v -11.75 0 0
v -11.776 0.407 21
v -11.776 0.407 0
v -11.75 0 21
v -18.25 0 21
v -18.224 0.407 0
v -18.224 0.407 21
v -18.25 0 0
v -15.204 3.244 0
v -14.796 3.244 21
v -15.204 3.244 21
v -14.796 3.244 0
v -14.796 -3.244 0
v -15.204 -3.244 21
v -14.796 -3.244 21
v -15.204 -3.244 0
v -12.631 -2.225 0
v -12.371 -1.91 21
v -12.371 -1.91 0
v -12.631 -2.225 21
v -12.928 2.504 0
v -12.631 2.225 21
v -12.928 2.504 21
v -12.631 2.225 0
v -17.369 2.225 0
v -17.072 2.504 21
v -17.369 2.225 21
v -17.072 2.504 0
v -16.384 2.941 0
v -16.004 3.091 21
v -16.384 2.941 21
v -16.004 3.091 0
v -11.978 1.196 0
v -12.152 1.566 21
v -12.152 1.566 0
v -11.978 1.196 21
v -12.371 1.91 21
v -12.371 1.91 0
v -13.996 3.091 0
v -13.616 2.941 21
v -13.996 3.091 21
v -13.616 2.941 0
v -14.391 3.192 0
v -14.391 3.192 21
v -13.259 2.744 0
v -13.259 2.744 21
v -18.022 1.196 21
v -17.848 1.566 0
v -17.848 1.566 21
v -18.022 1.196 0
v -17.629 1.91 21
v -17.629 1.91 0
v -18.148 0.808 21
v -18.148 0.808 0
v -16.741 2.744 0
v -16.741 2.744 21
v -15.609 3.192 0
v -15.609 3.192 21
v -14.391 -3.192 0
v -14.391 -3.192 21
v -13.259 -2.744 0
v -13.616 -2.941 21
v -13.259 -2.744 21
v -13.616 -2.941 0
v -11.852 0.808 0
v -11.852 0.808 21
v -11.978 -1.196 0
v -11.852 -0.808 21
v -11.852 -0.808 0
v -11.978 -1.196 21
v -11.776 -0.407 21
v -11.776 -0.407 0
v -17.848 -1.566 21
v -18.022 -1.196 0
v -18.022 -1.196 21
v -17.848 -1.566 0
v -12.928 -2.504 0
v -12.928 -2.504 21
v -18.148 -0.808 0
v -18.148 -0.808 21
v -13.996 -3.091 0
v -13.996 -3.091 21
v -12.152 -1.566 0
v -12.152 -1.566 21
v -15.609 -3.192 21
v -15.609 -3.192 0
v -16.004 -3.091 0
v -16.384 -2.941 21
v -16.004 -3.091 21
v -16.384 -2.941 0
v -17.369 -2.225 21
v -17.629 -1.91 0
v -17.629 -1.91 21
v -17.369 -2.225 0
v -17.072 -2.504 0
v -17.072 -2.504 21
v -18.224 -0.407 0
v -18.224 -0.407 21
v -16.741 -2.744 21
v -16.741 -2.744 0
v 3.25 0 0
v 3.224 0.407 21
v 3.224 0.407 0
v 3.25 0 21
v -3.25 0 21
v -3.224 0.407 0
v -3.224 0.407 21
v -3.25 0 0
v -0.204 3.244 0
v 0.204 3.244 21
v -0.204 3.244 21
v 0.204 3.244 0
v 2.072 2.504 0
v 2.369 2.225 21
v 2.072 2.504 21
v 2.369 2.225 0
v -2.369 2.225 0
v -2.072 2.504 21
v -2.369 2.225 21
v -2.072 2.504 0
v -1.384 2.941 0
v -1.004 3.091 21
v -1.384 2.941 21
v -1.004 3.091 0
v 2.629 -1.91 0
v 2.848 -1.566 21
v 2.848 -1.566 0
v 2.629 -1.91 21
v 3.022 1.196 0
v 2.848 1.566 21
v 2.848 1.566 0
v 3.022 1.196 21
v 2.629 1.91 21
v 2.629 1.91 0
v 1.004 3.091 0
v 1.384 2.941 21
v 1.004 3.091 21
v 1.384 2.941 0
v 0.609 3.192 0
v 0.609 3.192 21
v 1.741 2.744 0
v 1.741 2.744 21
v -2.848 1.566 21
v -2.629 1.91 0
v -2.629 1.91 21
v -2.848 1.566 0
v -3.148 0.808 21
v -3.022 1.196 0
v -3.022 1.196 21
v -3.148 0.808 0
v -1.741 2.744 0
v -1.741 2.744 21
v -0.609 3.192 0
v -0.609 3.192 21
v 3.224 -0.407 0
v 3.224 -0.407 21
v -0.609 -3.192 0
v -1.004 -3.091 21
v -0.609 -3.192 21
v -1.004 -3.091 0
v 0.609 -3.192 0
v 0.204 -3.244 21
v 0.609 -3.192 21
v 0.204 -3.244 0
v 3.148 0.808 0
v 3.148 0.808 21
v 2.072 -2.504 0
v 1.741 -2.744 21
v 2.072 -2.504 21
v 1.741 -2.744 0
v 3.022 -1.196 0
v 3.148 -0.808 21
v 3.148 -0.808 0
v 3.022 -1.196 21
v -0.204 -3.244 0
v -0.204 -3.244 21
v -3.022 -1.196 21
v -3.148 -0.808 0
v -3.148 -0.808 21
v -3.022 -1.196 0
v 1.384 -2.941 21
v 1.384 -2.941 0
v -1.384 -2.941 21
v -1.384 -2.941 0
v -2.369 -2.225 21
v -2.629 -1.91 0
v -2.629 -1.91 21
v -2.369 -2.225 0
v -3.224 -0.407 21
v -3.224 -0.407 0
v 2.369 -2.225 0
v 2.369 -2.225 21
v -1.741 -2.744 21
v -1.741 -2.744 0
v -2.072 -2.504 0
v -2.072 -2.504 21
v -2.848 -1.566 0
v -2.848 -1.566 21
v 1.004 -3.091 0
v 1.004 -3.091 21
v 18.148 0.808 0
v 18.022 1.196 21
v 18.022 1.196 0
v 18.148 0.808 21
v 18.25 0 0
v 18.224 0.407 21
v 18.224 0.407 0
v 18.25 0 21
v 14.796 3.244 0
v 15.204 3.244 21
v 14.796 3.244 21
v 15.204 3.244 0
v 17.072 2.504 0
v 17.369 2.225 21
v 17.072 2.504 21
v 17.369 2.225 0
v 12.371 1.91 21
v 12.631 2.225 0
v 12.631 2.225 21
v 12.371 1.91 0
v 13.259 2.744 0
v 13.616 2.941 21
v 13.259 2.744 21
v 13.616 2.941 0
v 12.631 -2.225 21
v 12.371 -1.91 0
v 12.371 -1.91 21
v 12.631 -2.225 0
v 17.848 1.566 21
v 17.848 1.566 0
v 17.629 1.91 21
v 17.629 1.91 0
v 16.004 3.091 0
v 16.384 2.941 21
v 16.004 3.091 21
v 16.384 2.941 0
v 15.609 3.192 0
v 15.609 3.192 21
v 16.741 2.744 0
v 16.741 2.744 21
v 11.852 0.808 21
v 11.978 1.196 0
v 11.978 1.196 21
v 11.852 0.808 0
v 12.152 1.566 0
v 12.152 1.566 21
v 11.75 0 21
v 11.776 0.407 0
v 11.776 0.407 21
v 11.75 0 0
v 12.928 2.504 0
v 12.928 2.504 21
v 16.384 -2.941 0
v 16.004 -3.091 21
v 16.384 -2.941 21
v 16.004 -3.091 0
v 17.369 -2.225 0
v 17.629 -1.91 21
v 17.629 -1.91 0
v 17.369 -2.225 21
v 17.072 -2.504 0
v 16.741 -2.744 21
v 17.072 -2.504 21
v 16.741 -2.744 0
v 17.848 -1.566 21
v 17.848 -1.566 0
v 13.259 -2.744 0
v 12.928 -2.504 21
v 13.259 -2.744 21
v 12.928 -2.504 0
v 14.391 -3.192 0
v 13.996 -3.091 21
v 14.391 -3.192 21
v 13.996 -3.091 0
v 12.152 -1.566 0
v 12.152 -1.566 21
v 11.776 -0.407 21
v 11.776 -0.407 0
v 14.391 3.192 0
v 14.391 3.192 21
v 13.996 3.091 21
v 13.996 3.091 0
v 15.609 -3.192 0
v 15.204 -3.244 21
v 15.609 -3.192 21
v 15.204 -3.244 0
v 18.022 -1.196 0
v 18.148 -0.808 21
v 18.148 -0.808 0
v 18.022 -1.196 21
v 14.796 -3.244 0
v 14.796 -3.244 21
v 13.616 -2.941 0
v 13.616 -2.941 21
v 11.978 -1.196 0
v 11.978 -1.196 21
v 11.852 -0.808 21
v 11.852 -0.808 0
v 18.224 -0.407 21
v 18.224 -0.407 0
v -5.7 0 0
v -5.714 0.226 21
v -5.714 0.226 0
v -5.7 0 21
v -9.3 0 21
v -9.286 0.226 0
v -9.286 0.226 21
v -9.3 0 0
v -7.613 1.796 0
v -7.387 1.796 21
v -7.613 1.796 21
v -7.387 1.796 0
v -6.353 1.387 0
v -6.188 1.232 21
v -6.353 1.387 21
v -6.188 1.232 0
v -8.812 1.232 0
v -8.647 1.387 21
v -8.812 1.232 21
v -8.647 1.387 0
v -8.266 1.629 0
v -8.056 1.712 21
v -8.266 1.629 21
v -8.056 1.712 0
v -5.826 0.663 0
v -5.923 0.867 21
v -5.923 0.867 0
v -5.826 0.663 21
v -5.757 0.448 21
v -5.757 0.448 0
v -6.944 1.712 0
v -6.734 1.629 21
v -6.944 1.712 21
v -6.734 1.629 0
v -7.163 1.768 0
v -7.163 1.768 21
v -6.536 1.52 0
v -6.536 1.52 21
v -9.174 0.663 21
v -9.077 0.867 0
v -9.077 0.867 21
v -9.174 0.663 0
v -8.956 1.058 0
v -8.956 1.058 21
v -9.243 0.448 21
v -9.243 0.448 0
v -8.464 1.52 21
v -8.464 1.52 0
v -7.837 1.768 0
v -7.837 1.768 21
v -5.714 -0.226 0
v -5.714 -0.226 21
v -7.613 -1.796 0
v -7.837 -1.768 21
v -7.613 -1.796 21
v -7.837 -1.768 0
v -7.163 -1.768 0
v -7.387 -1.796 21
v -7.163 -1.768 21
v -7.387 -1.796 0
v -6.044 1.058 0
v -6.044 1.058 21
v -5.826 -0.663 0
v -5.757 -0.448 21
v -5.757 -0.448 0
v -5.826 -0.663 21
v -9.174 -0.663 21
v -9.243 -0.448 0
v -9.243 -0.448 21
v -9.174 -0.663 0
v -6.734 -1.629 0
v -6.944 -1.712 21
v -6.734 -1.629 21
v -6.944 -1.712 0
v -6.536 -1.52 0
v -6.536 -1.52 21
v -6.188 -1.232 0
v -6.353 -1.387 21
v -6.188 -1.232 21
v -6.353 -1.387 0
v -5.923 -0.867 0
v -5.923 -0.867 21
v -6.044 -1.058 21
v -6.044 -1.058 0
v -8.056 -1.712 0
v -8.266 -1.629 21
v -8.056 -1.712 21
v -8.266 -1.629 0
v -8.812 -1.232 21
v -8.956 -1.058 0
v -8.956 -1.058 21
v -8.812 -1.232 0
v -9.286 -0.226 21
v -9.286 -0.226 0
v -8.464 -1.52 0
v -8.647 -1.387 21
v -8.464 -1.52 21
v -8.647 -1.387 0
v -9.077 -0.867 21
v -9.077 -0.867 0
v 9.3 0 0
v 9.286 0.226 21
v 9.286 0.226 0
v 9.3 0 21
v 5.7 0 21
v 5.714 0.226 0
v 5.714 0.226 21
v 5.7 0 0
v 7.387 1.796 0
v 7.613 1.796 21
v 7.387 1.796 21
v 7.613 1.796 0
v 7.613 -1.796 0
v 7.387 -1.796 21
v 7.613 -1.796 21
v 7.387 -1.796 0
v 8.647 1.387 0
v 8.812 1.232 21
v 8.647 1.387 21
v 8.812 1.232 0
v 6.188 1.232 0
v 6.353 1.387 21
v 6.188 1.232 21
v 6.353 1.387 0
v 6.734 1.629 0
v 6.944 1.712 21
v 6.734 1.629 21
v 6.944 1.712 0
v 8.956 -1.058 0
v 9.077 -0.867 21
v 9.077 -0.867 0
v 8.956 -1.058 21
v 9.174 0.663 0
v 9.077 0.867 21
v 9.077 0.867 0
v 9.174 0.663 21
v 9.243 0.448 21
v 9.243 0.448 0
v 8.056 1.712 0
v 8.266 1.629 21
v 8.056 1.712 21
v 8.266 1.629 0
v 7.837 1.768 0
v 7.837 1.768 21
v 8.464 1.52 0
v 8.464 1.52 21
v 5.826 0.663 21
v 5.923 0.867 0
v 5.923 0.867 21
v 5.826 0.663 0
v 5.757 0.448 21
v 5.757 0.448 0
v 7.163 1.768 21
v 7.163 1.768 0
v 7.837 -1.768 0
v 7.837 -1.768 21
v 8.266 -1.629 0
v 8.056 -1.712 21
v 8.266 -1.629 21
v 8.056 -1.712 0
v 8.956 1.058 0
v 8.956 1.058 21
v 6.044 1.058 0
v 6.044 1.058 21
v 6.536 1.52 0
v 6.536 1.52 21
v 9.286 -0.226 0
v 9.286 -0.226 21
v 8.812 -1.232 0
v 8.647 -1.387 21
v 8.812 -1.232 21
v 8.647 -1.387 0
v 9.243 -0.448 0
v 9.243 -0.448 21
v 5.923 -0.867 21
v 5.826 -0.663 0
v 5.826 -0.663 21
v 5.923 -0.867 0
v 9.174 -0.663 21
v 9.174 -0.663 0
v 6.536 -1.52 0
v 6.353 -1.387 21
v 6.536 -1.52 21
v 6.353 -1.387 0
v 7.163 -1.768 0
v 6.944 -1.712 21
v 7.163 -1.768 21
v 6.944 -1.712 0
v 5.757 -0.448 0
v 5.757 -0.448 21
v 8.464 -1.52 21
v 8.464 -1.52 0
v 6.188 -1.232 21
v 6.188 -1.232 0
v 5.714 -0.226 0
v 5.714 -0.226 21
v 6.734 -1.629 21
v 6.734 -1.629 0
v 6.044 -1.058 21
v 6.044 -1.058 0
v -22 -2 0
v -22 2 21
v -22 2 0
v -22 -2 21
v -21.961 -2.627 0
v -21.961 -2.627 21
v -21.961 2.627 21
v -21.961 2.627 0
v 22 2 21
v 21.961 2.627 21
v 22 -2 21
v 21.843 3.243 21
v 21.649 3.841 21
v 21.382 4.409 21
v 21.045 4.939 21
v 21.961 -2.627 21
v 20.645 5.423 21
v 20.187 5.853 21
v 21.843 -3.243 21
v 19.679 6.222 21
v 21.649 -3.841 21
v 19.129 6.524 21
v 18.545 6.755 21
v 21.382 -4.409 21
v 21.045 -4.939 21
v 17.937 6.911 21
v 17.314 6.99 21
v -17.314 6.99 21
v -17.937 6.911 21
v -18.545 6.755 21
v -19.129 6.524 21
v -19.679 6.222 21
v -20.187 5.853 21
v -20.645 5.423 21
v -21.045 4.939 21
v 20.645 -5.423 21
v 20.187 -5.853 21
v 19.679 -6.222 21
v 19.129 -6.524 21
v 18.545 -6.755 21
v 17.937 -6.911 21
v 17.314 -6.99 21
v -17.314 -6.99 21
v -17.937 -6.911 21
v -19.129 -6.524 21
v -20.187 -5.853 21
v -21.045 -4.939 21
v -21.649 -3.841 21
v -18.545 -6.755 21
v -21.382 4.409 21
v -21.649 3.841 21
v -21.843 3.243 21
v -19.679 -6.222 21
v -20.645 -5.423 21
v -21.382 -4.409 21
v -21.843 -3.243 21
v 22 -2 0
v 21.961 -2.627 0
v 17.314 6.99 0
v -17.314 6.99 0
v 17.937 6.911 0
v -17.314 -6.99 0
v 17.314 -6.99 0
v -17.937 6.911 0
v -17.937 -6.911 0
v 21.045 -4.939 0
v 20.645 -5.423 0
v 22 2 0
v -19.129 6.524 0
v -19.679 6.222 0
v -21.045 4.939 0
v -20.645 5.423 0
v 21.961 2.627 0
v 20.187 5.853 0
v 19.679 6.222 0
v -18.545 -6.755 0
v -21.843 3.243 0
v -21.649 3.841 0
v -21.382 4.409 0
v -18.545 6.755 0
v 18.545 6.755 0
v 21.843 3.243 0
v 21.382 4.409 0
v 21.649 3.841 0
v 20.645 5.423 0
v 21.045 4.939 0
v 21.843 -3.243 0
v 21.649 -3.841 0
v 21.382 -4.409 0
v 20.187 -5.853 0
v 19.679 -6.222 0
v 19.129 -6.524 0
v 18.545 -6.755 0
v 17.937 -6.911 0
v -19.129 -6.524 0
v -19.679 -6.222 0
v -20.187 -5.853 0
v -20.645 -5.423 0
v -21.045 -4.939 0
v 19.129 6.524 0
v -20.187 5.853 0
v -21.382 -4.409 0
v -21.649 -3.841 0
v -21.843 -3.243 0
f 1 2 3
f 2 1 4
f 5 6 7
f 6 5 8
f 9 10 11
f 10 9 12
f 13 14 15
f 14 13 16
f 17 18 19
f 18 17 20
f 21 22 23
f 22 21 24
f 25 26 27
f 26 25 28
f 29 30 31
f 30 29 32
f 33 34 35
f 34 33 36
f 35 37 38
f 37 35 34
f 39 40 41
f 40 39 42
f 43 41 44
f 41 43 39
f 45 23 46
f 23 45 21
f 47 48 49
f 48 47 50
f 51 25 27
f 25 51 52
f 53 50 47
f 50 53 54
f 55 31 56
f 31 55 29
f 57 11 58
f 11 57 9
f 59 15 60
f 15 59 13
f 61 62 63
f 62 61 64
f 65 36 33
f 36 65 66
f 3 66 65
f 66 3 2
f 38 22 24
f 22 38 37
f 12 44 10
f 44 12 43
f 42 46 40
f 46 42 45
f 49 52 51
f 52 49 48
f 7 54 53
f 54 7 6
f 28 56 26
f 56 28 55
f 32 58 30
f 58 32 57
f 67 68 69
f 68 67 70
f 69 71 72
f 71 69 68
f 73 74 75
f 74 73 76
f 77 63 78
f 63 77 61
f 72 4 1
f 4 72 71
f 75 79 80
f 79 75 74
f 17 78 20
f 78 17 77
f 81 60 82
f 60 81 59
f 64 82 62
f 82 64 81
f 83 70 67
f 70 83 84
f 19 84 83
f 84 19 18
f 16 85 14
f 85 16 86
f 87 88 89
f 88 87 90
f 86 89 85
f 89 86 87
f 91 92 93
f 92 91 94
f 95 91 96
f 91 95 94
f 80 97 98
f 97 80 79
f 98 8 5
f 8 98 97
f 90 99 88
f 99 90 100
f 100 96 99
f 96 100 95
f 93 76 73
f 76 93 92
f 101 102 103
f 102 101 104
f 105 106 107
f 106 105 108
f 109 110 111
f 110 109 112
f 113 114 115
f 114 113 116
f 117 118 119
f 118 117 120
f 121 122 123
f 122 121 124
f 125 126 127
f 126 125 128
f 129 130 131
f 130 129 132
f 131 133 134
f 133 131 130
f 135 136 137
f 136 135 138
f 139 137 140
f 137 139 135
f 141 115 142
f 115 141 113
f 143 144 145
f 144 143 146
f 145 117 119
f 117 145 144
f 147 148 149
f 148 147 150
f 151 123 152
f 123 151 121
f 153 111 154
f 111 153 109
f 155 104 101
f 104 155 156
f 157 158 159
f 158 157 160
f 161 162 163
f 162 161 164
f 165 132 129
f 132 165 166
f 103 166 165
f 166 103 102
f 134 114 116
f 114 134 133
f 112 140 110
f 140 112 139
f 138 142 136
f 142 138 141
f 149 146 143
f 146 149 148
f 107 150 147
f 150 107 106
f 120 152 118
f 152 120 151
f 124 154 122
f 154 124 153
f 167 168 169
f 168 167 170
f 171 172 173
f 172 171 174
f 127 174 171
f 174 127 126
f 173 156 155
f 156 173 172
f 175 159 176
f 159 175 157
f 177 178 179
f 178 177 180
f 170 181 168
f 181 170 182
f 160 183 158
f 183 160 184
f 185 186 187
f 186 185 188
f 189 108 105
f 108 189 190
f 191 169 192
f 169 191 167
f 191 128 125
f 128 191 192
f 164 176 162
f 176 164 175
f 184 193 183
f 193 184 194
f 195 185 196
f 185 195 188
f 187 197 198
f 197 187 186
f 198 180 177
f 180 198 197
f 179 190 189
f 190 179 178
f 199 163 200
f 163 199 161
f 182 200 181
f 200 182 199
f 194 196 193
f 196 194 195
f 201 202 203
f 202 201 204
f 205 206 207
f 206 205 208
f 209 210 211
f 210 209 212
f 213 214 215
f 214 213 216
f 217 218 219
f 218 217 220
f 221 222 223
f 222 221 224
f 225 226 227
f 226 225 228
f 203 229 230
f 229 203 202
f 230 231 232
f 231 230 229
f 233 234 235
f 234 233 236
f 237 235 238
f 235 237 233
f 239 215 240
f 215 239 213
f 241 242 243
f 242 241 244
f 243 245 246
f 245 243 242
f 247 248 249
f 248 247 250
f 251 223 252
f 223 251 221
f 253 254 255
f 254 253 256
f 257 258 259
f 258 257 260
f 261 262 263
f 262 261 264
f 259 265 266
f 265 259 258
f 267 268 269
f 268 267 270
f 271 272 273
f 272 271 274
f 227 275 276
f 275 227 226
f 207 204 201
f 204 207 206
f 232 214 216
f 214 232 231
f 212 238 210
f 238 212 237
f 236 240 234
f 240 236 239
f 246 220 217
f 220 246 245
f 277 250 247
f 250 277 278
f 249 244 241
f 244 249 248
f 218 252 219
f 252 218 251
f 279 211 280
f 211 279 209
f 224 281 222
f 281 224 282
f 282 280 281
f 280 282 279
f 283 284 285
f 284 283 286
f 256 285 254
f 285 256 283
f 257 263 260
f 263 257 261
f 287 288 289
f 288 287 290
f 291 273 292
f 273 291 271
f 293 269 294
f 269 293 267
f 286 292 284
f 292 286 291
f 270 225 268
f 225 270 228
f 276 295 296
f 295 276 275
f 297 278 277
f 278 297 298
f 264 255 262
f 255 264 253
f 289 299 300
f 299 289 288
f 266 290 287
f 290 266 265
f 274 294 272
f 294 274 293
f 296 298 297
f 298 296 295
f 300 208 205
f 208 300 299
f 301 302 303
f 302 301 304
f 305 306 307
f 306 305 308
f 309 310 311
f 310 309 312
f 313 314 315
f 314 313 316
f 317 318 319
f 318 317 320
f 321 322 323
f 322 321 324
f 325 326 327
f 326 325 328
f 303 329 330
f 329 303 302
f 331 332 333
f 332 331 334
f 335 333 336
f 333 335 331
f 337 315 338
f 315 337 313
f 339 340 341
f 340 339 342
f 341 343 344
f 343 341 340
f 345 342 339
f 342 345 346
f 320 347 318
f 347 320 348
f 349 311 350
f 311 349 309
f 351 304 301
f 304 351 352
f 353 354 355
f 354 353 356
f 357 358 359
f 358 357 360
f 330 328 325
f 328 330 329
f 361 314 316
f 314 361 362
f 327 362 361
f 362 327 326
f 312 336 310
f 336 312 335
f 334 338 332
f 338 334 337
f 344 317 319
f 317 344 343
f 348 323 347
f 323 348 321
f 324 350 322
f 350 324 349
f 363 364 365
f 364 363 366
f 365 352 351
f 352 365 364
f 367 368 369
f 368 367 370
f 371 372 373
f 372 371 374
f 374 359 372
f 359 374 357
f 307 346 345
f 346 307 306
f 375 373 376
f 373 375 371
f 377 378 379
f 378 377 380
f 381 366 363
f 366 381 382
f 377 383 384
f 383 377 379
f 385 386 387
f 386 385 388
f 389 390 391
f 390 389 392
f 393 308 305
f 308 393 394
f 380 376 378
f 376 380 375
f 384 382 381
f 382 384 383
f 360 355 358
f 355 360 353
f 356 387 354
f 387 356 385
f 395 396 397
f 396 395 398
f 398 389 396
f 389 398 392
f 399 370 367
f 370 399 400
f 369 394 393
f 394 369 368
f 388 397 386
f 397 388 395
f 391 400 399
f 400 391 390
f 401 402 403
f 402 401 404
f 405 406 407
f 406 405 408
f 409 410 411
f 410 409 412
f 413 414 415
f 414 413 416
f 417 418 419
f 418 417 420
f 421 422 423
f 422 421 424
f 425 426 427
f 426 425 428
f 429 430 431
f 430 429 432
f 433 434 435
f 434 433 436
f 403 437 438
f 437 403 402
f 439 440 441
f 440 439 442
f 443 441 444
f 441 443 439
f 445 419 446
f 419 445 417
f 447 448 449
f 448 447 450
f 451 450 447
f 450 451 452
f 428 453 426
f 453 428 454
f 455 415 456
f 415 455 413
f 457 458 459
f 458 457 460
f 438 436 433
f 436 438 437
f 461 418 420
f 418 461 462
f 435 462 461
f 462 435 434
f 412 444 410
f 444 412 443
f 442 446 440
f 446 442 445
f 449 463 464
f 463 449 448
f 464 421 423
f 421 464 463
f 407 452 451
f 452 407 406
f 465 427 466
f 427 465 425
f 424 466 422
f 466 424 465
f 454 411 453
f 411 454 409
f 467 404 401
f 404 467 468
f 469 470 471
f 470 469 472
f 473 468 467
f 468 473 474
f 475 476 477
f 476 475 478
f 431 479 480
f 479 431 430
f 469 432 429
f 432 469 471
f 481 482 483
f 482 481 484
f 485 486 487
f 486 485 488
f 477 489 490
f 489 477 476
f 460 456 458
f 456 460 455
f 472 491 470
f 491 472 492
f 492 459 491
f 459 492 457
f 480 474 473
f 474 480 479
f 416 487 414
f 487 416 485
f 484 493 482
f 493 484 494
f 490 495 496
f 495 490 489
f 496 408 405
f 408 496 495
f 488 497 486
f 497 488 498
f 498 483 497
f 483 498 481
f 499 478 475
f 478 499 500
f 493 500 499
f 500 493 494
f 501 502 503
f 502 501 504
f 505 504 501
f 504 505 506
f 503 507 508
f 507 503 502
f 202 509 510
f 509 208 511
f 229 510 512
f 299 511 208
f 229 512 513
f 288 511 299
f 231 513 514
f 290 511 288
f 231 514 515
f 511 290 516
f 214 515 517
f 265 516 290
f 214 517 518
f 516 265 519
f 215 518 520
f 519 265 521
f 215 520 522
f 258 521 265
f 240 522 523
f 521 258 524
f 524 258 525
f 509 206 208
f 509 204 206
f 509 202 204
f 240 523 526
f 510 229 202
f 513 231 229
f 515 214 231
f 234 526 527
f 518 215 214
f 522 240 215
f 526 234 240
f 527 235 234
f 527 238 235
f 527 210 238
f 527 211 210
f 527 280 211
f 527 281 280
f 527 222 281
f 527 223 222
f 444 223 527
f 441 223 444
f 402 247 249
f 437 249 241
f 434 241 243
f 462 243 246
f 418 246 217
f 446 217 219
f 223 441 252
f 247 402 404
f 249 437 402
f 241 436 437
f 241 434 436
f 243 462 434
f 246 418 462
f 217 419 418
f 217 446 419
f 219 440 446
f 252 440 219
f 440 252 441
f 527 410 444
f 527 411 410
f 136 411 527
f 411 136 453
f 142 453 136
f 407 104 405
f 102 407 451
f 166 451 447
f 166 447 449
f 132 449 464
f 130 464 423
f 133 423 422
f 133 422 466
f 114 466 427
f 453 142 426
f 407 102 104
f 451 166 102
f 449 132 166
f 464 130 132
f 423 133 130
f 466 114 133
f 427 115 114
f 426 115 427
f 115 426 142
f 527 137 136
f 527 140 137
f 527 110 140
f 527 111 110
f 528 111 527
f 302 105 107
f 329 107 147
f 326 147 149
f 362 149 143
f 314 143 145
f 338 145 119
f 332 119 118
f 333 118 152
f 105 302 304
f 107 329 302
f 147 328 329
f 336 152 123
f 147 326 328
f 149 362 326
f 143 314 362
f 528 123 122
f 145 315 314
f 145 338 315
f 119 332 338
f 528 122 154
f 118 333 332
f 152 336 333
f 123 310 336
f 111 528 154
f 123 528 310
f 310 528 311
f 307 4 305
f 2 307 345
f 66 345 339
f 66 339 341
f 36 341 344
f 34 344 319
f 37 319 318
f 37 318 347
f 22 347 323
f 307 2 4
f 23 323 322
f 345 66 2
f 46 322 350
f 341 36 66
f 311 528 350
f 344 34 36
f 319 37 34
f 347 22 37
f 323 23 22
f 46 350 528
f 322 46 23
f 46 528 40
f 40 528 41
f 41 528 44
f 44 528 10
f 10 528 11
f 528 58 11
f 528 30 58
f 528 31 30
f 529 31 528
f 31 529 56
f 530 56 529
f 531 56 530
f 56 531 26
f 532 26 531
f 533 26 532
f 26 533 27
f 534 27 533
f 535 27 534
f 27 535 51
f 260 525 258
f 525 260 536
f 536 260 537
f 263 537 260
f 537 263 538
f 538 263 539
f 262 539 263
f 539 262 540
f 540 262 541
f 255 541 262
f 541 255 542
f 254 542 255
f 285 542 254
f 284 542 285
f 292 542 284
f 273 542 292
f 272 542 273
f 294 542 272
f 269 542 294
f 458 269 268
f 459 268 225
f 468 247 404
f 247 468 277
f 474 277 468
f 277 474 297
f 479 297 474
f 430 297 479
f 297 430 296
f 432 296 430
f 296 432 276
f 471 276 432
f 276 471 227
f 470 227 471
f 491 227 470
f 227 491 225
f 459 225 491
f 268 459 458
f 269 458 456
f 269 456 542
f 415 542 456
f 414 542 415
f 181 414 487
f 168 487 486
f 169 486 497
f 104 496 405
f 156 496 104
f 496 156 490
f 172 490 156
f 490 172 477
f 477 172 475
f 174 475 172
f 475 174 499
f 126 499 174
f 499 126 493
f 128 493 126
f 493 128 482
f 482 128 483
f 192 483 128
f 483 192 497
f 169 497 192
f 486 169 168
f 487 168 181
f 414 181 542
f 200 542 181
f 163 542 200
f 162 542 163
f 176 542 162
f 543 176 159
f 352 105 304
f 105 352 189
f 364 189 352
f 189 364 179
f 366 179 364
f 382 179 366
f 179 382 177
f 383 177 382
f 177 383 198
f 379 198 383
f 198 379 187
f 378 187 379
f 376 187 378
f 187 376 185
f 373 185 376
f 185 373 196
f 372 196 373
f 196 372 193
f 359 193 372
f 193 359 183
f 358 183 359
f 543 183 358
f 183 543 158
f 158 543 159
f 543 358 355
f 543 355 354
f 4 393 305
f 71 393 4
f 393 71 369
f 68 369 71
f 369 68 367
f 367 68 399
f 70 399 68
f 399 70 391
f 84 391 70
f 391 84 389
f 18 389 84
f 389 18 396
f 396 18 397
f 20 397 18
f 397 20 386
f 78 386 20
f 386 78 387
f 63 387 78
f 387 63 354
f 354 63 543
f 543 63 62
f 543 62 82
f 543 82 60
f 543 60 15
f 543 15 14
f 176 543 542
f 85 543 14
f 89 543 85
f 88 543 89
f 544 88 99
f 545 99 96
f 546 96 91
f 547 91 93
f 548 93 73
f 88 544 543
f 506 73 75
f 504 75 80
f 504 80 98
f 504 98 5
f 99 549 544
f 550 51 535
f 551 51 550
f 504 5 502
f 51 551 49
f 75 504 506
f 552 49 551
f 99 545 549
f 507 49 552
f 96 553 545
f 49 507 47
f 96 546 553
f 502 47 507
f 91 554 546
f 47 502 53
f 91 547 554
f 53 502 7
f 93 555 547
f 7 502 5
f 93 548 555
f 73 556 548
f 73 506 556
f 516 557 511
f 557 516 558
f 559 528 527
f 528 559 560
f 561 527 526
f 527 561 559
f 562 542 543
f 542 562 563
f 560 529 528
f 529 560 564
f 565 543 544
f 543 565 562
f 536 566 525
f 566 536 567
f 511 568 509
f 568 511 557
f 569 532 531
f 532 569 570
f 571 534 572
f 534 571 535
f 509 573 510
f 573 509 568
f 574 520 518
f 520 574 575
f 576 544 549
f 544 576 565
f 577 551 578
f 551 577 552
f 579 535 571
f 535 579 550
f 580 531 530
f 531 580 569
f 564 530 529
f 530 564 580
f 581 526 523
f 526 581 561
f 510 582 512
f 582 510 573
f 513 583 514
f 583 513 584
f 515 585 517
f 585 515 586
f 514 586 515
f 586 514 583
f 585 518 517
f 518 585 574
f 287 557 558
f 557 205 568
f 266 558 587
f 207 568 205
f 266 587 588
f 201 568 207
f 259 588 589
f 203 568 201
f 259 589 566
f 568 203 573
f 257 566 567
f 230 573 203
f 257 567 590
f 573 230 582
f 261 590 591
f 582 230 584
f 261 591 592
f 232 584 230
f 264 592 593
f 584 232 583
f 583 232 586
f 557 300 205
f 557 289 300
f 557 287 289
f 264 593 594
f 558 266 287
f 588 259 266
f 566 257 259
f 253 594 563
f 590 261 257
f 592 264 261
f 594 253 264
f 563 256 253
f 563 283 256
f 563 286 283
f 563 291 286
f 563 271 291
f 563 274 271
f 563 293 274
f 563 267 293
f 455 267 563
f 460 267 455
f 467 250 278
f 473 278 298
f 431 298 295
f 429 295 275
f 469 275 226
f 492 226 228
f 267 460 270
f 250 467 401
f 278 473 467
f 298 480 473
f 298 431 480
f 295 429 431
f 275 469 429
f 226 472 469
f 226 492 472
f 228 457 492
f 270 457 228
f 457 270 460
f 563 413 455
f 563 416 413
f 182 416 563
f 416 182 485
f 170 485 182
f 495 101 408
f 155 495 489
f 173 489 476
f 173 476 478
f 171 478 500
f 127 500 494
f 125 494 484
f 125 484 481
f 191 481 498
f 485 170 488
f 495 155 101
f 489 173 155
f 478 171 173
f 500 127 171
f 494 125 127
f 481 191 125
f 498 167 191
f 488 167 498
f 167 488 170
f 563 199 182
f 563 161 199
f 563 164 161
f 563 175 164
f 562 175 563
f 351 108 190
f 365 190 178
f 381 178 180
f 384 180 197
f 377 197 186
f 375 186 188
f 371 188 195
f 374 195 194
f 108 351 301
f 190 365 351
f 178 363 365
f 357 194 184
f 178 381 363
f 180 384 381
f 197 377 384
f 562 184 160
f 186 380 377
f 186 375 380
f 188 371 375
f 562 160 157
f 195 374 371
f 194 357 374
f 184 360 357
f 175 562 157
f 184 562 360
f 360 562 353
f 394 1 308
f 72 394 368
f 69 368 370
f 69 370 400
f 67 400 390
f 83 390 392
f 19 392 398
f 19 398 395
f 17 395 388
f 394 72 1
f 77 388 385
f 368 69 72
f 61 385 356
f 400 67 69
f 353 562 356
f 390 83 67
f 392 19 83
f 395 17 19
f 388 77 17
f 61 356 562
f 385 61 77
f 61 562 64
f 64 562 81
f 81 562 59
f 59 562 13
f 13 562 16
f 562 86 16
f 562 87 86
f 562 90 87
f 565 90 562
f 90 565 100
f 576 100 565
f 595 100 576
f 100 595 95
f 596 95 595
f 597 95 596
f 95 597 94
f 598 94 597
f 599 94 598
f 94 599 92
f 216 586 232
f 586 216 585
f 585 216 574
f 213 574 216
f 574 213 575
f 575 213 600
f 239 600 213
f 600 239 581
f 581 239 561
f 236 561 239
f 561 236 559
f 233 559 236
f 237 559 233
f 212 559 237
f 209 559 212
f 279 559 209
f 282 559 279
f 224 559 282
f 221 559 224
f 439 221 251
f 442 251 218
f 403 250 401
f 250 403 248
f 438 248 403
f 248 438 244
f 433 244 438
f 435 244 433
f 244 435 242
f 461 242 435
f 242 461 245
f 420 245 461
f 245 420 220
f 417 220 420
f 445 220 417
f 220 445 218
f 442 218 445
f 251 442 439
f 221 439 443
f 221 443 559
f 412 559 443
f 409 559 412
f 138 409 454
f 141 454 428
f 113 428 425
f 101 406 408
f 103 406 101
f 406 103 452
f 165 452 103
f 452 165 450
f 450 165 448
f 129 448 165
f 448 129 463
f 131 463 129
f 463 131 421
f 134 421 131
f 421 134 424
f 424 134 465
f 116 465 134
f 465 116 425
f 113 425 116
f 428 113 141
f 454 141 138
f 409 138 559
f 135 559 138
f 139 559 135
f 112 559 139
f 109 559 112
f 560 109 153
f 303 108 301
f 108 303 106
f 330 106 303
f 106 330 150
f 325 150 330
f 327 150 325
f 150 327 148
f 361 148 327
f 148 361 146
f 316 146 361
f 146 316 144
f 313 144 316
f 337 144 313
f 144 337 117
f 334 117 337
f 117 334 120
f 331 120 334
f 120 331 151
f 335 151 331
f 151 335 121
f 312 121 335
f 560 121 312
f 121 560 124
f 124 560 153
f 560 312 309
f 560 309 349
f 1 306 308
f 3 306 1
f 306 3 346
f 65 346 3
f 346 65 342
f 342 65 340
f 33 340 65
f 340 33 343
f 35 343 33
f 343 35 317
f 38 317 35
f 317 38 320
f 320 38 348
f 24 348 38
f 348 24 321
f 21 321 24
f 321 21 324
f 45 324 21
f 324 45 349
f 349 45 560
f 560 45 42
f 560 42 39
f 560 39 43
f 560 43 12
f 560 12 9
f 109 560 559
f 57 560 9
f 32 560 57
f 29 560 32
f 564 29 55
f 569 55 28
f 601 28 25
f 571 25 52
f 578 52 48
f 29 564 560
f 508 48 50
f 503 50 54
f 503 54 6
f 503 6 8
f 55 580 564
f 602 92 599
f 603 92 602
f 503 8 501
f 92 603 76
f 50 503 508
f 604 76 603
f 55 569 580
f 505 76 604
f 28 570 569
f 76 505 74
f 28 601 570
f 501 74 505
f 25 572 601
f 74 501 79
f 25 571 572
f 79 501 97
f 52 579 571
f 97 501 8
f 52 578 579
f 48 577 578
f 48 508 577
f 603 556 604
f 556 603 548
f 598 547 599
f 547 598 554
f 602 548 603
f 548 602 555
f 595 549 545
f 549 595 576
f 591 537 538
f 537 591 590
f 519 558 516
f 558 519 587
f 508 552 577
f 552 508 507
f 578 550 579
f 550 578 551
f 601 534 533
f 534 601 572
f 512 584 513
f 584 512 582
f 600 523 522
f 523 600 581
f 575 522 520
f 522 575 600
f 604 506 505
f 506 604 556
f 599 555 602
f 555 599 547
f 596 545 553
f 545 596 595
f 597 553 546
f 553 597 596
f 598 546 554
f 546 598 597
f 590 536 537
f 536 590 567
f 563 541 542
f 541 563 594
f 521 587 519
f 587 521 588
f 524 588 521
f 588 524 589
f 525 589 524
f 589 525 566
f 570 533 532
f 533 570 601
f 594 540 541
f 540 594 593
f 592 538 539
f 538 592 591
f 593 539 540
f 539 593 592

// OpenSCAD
$fn = 50;


difference() {
	union() {
		translate(v = [0, 0, 0]) {
			rotate(a = [0, 0, 0]) {
				hull() {
					translate(v = [-17.0000000000, 2.0000000000, 0]) {
						rotate(a = [0, 0, 0]) {
							translate(v = [0, 0, 0]) {
								rotate(a = [0, 0, 0]) {
									cylinder(h = 21, r = 5);
								}
							}
						}
					}
					translate(v = [17.0000000000, 2.0000000000, 0]) {
						rotate(a = [0, 0, 0]) {
							translate(v = [0, 0, 0]) {
								rotate(a = [0, 0, 0]) {
									cylinder(h = 21, r = 5);
								}
							}
						}
					}
					translate(v = [-17.0000000000, -2.0000000000, 0]) {
						rotate(a = [0, 0, 0]) {
							translate(v = [0, 0, 0]) {
								rotate(a = [0, 0, 0]) {
									cylinder(h = 21, r = 5);
								}
							}
						}
					}
					translate(v = [17.0000000000, -2.0000000000, 0]) {
						rotate(a = [0, 0, 0]) {
							translate(v = [0, 0, 0]) {
								rotate(a = [0, 0, 0]) {
									cylinder(h = 21, r = 5);
								}
							}
						}
					}
				}
			}
		}
	}
	union() {
		translate(v = [-15.0000000000, 0.0000000000, 0]) {
			rotate(a = [0, 0, 0]) {
				translate(v = [0, 0, -50]) {
					rotate(a = [0, 0, 0]) {
						cylinder(h = 100, r = 3.2500000000);
					}
				}
			}
		}
		translate(v = [0.0000000000, 0.0000000000, 0]) {
			rotate(a = [0, 0, 0]) {
				translate(v = [0, 0, -50]) {
					rotate(a = [0, 0, 0]) {
						cylinder(h = 100, r = 3.2500000000);
					}
				}
			}
		}
		translate(v = [15.0000000000, 0.0000000000, 0]) {
			rotate(a = [0, 0, 0]) {
				translate(v = [0, 0, -50]) {
					rotate(a = [0, 0, 0]) {
						cylinder(h = 100, r = 3.2500000000);
					}
				}
			}
		}
		translate(v = [-15.0000000000, 0.0000000000, 0]) {
			rotate(a = [0, 0, 0]) {
				translate(v = [0, 0, -50]) {
					rotate(a = [0, 0, 0]) {
						cylinder(h = 100, r = 1.8000000000);
					}
				}
			}
		}
		translate(v = [-7.5000000000, 0.0000000000, 0]) {
			rotate(a = [0, 0, 0]) {
				translate(v = [0, 0, -50]) {
					rotate(a = [0, 0, 0]) {
						cylinder(h = 100, r = 1.8000000000);
					}
				}
			}
		}
		translate(v = [0.0000000000, 0.0000000000, 0]) {
			rotate(a = [0, 0, 0]) {
				translate(v = [0, 0, -50]) {
					rotate(a = [0, 0, 0]) {
						cylinder(h = 100, r = 1.8000000000);
					}
				}
			}
		}
		translate(v = [7.5000000000, 0.0000000000, 0]) {
			rotate(a = [0, 0, 0]) {
				translate(v = [0, 0, -50]) {
					rotate(a = [0, 0, 0]) {
						cylinder(h = 100, r = 1.8000000000);
					}
				}
			}
		}
		translate(v = [15.0000000000, 0.0000000000, 0]) {
			rotate(a = [0, 0, 0]) {
				translate(v = [0, 0, -50]) {
					rotate(a = [0, 0, 0]) {
						cylinder(h = 100, r = 1.8000000000);
					}
				}
			}
		}
	}
}
